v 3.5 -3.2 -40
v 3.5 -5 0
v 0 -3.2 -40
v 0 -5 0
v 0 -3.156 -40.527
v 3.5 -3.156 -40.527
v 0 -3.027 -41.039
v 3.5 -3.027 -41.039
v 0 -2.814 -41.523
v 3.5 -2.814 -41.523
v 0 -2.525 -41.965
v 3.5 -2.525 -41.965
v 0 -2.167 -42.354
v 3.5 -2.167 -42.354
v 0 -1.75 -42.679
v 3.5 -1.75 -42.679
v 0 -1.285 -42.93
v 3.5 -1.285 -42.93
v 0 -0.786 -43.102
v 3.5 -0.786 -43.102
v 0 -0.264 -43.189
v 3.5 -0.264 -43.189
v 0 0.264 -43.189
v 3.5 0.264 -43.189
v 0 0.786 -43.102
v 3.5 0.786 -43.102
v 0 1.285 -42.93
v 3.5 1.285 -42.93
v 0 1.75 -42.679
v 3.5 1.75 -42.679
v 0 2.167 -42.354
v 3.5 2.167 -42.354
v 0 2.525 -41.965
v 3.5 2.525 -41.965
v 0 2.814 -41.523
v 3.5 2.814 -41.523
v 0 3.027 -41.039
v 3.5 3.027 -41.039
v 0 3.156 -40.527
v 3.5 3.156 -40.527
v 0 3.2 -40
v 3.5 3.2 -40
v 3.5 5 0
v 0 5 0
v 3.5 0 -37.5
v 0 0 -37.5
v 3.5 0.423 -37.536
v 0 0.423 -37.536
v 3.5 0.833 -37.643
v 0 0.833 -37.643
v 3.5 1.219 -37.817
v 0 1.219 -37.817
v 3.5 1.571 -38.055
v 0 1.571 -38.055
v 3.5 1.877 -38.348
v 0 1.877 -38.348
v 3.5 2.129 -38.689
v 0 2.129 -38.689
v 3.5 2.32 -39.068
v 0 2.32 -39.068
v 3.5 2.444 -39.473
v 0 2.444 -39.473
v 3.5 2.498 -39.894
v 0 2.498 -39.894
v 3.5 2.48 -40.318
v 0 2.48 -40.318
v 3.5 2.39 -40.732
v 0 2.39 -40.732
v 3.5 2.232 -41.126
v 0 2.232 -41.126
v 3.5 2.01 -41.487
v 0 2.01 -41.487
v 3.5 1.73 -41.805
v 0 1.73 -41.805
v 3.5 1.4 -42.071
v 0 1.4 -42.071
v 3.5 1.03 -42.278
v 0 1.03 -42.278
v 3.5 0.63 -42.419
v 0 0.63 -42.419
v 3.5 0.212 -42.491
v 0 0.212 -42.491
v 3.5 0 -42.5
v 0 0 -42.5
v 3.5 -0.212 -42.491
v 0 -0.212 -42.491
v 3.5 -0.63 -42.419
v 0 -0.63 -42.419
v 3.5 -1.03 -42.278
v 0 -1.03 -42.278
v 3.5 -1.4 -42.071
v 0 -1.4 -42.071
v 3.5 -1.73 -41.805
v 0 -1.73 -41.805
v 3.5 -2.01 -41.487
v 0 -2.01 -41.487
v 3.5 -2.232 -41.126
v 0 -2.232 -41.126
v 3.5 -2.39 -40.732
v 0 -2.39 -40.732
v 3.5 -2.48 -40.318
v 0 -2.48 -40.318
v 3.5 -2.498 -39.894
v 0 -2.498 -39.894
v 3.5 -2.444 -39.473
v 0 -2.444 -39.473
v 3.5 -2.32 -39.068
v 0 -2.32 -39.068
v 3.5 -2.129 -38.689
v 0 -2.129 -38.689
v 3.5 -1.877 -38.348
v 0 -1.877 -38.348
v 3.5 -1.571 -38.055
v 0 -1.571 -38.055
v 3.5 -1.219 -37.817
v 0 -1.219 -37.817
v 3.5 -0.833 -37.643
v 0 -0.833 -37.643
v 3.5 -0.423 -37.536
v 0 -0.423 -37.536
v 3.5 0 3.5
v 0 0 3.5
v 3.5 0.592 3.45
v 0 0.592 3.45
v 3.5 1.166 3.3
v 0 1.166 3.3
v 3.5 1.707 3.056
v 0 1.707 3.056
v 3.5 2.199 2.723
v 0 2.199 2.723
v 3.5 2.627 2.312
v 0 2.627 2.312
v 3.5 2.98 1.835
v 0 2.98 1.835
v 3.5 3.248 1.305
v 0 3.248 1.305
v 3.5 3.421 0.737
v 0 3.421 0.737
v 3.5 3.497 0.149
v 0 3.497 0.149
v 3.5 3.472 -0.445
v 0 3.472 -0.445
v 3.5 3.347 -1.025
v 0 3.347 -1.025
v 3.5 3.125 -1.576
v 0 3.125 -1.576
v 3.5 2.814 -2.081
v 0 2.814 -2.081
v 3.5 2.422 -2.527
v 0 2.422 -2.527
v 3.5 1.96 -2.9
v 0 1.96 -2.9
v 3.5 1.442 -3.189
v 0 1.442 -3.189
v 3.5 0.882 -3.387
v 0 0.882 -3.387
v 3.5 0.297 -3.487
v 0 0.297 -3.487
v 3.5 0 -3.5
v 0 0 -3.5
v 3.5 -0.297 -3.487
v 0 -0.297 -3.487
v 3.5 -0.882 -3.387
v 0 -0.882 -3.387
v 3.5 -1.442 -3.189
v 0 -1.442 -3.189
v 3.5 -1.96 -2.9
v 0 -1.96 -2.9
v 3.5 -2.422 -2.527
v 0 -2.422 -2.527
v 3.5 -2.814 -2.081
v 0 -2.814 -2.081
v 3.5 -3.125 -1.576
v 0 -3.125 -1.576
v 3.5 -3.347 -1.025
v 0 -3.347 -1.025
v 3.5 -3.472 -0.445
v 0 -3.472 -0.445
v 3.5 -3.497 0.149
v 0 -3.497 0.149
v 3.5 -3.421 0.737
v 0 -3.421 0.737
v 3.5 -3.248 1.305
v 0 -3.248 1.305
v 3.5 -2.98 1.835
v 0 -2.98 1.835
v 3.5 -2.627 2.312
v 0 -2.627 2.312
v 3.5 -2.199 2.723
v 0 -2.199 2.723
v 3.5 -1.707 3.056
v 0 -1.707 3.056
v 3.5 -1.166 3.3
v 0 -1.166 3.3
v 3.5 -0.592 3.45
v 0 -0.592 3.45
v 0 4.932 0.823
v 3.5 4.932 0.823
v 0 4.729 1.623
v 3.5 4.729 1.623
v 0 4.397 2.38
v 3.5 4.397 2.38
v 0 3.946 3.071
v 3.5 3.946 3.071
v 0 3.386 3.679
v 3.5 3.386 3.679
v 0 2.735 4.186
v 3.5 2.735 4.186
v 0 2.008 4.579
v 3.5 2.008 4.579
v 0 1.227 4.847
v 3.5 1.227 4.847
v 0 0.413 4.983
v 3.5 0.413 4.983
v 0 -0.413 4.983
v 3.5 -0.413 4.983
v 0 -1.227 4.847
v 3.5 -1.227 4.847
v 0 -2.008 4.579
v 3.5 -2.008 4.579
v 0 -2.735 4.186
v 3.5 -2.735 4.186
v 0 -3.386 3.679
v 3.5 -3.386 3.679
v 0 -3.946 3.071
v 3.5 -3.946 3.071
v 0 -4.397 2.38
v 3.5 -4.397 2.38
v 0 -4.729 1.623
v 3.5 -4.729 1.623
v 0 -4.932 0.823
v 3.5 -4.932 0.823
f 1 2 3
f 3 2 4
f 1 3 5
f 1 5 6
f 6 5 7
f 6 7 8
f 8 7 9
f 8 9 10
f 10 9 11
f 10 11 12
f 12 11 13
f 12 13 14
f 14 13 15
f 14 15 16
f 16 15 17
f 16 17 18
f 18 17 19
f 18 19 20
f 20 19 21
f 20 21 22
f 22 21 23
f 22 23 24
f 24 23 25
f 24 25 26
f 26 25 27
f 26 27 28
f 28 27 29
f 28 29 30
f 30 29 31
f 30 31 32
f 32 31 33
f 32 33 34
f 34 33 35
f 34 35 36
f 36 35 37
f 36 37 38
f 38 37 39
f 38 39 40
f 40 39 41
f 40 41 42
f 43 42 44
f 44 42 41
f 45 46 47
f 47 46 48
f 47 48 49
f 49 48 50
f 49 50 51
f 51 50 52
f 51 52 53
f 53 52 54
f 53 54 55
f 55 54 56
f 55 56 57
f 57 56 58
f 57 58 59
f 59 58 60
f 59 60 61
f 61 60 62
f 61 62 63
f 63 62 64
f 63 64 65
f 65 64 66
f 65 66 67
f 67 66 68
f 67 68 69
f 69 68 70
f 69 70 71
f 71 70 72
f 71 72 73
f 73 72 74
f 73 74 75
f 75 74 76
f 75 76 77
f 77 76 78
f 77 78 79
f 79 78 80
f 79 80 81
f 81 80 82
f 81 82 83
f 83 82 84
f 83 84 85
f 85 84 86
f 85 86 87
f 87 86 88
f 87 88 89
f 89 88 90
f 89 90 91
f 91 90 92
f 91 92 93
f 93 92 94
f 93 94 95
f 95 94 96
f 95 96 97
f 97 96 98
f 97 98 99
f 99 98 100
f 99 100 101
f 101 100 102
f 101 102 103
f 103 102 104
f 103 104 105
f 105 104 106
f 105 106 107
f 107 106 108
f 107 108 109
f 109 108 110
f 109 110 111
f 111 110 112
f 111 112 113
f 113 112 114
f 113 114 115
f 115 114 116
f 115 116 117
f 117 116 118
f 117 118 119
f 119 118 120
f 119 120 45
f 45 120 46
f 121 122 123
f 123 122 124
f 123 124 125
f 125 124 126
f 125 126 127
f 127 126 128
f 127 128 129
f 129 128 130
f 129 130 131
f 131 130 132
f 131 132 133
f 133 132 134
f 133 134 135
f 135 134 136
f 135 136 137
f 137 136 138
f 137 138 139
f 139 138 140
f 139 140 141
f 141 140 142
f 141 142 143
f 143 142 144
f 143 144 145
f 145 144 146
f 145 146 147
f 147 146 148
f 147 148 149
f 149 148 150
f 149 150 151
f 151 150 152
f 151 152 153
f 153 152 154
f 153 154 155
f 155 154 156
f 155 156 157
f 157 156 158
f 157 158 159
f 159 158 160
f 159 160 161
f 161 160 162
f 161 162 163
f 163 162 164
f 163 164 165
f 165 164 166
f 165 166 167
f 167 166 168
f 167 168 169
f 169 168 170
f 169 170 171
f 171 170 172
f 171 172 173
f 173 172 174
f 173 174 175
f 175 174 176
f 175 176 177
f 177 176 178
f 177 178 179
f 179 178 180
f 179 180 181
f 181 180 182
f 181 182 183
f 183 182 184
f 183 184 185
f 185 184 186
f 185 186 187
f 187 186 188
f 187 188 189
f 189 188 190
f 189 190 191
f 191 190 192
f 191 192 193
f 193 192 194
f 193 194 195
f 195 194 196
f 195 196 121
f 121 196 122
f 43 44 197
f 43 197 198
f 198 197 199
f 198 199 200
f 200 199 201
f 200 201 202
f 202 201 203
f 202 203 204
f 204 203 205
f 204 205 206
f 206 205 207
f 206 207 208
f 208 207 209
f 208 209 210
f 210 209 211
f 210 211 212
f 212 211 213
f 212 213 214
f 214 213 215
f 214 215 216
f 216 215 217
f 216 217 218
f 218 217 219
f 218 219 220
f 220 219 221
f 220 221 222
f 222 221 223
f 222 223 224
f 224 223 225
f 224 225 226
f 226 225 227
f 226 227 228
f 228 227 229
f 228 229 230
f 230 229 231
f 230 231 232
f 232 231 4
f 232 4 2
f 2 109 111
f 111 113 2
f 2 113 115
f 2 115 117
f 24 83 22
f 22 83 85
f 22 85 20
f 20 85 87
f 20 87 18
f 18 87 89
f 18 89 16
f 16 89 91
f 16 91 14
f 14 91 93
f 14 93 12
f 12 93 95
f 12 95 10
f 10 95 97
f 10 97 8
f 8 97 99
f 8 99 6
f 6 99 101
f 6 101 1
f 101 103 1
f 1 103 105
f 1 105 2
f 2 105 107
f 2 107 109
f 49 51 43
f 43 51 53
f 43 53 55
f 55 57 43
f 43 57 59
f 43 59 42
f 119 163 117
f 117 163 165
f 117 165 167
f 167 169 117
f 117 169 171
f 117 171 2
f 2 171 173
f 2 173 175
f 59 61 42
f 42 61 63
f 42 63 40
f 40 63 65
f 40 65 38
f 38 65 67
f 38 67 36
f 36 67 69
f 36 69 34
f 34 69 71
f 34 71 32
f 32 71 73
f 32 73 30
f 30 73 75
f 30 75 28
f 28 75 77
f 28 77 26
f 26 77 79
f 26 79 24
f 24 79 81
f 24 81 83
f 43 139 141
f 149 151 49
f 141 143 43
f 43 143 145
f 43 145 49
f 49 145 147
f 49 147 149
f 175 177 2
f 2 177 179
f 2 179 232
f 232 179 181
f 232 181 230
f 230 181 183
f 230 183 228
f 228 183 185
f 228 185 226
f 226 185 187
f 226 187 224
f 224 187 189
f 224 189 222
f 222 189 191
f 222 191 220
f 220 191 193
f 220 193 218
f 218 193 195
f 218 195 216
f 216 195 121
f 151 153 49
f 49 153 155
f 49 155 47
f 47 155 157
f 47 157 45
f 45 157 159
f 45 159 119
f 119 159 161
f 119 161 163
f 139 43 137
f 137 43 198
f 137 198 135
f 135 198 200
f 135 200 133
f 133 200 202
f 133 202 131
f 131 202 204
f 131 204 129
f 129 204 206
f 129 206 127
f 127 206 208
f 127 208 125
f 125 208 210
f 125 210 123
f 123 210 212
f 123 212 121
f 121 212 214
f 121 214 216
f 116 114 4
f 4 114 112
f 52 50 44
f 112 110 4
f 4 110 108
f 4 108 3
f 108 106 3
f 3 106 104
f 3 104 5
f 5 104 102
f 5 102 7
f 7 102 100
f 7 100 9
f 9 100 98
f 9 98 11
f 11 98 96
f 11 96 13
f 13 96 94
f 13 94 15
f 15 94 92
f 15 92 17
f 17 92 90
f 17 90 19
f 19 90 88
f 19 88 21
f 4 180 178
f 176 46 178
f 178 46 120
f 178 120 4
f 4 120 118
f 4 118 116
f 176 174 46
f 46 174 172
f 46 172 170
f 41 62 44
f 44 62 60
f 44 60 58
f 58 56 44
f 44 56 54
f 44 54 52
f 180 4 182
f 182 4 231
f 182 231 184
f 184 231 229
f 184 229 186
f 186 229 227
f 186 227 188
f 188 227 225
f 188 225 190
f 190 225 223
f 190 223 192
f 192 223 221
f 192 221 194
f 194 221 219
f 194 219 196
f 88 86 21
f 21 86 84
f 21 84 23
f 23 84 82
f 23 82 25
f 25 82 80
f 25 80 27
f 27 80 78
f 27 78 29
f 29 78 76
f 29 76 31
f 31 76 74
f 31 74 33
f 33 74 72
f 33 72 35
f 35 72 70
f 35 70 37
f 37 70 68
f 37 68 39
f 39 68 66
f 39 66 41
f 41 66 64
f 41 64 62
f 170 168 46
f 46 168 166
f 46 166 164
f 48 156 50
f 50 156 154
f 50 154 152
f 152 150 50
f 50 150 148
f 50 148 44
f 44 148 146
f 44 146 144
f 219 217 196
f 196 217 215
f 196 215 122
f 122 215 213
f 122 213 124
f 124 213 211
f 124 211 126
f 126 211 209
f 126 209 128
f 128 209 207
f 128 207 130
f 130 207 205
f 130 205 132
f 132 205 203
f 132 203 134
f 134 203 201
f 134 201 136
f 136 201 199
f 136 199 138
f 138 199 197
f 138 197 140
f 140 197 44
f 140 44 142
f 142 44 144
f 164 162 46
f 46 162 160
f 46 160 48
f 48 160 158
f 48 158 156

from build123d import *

# Parameters (mm, degrees)
SKETCH_3_R      = 3.5
SKETCH_3_R_2    = 2.5
EXTRUDE_2_DEPTH = 3.5


with BuildPart() as part:
    # 草图3 → 凸台-拉伸2 (new body)
    with BuildSketch(Plane(origin=(0, 0, 0), x_dir=(0, 0, -1), z_dir=(1, 0, 0))):
        with BuildLine():
            Line((0.449090592, 4.979790923), (0, 5))
            ThreePointArc((0, 5), (-5, 0), (0, -5))
            Line((0, -5), (0.449090592, -4.979790923))
            Line((0.449090592, -4.979790923), (40, -3.2))
            ThreePointArc((40, -3.2), (43.2, 0), (40, 3.2))
            Line((40, 3.2), (0.449090592, 4.979790923))
        make_face()
        Circle(SKETCH_3_R, mode=Mode.SUBTRACT)
        with Locations((40, 0)):
            Circle(SKETCH_3_R_2, mode=Mode.SUBTRACT)
    extrude(amount=EXTRUDE_2_DEPTH)


solid = part.part
